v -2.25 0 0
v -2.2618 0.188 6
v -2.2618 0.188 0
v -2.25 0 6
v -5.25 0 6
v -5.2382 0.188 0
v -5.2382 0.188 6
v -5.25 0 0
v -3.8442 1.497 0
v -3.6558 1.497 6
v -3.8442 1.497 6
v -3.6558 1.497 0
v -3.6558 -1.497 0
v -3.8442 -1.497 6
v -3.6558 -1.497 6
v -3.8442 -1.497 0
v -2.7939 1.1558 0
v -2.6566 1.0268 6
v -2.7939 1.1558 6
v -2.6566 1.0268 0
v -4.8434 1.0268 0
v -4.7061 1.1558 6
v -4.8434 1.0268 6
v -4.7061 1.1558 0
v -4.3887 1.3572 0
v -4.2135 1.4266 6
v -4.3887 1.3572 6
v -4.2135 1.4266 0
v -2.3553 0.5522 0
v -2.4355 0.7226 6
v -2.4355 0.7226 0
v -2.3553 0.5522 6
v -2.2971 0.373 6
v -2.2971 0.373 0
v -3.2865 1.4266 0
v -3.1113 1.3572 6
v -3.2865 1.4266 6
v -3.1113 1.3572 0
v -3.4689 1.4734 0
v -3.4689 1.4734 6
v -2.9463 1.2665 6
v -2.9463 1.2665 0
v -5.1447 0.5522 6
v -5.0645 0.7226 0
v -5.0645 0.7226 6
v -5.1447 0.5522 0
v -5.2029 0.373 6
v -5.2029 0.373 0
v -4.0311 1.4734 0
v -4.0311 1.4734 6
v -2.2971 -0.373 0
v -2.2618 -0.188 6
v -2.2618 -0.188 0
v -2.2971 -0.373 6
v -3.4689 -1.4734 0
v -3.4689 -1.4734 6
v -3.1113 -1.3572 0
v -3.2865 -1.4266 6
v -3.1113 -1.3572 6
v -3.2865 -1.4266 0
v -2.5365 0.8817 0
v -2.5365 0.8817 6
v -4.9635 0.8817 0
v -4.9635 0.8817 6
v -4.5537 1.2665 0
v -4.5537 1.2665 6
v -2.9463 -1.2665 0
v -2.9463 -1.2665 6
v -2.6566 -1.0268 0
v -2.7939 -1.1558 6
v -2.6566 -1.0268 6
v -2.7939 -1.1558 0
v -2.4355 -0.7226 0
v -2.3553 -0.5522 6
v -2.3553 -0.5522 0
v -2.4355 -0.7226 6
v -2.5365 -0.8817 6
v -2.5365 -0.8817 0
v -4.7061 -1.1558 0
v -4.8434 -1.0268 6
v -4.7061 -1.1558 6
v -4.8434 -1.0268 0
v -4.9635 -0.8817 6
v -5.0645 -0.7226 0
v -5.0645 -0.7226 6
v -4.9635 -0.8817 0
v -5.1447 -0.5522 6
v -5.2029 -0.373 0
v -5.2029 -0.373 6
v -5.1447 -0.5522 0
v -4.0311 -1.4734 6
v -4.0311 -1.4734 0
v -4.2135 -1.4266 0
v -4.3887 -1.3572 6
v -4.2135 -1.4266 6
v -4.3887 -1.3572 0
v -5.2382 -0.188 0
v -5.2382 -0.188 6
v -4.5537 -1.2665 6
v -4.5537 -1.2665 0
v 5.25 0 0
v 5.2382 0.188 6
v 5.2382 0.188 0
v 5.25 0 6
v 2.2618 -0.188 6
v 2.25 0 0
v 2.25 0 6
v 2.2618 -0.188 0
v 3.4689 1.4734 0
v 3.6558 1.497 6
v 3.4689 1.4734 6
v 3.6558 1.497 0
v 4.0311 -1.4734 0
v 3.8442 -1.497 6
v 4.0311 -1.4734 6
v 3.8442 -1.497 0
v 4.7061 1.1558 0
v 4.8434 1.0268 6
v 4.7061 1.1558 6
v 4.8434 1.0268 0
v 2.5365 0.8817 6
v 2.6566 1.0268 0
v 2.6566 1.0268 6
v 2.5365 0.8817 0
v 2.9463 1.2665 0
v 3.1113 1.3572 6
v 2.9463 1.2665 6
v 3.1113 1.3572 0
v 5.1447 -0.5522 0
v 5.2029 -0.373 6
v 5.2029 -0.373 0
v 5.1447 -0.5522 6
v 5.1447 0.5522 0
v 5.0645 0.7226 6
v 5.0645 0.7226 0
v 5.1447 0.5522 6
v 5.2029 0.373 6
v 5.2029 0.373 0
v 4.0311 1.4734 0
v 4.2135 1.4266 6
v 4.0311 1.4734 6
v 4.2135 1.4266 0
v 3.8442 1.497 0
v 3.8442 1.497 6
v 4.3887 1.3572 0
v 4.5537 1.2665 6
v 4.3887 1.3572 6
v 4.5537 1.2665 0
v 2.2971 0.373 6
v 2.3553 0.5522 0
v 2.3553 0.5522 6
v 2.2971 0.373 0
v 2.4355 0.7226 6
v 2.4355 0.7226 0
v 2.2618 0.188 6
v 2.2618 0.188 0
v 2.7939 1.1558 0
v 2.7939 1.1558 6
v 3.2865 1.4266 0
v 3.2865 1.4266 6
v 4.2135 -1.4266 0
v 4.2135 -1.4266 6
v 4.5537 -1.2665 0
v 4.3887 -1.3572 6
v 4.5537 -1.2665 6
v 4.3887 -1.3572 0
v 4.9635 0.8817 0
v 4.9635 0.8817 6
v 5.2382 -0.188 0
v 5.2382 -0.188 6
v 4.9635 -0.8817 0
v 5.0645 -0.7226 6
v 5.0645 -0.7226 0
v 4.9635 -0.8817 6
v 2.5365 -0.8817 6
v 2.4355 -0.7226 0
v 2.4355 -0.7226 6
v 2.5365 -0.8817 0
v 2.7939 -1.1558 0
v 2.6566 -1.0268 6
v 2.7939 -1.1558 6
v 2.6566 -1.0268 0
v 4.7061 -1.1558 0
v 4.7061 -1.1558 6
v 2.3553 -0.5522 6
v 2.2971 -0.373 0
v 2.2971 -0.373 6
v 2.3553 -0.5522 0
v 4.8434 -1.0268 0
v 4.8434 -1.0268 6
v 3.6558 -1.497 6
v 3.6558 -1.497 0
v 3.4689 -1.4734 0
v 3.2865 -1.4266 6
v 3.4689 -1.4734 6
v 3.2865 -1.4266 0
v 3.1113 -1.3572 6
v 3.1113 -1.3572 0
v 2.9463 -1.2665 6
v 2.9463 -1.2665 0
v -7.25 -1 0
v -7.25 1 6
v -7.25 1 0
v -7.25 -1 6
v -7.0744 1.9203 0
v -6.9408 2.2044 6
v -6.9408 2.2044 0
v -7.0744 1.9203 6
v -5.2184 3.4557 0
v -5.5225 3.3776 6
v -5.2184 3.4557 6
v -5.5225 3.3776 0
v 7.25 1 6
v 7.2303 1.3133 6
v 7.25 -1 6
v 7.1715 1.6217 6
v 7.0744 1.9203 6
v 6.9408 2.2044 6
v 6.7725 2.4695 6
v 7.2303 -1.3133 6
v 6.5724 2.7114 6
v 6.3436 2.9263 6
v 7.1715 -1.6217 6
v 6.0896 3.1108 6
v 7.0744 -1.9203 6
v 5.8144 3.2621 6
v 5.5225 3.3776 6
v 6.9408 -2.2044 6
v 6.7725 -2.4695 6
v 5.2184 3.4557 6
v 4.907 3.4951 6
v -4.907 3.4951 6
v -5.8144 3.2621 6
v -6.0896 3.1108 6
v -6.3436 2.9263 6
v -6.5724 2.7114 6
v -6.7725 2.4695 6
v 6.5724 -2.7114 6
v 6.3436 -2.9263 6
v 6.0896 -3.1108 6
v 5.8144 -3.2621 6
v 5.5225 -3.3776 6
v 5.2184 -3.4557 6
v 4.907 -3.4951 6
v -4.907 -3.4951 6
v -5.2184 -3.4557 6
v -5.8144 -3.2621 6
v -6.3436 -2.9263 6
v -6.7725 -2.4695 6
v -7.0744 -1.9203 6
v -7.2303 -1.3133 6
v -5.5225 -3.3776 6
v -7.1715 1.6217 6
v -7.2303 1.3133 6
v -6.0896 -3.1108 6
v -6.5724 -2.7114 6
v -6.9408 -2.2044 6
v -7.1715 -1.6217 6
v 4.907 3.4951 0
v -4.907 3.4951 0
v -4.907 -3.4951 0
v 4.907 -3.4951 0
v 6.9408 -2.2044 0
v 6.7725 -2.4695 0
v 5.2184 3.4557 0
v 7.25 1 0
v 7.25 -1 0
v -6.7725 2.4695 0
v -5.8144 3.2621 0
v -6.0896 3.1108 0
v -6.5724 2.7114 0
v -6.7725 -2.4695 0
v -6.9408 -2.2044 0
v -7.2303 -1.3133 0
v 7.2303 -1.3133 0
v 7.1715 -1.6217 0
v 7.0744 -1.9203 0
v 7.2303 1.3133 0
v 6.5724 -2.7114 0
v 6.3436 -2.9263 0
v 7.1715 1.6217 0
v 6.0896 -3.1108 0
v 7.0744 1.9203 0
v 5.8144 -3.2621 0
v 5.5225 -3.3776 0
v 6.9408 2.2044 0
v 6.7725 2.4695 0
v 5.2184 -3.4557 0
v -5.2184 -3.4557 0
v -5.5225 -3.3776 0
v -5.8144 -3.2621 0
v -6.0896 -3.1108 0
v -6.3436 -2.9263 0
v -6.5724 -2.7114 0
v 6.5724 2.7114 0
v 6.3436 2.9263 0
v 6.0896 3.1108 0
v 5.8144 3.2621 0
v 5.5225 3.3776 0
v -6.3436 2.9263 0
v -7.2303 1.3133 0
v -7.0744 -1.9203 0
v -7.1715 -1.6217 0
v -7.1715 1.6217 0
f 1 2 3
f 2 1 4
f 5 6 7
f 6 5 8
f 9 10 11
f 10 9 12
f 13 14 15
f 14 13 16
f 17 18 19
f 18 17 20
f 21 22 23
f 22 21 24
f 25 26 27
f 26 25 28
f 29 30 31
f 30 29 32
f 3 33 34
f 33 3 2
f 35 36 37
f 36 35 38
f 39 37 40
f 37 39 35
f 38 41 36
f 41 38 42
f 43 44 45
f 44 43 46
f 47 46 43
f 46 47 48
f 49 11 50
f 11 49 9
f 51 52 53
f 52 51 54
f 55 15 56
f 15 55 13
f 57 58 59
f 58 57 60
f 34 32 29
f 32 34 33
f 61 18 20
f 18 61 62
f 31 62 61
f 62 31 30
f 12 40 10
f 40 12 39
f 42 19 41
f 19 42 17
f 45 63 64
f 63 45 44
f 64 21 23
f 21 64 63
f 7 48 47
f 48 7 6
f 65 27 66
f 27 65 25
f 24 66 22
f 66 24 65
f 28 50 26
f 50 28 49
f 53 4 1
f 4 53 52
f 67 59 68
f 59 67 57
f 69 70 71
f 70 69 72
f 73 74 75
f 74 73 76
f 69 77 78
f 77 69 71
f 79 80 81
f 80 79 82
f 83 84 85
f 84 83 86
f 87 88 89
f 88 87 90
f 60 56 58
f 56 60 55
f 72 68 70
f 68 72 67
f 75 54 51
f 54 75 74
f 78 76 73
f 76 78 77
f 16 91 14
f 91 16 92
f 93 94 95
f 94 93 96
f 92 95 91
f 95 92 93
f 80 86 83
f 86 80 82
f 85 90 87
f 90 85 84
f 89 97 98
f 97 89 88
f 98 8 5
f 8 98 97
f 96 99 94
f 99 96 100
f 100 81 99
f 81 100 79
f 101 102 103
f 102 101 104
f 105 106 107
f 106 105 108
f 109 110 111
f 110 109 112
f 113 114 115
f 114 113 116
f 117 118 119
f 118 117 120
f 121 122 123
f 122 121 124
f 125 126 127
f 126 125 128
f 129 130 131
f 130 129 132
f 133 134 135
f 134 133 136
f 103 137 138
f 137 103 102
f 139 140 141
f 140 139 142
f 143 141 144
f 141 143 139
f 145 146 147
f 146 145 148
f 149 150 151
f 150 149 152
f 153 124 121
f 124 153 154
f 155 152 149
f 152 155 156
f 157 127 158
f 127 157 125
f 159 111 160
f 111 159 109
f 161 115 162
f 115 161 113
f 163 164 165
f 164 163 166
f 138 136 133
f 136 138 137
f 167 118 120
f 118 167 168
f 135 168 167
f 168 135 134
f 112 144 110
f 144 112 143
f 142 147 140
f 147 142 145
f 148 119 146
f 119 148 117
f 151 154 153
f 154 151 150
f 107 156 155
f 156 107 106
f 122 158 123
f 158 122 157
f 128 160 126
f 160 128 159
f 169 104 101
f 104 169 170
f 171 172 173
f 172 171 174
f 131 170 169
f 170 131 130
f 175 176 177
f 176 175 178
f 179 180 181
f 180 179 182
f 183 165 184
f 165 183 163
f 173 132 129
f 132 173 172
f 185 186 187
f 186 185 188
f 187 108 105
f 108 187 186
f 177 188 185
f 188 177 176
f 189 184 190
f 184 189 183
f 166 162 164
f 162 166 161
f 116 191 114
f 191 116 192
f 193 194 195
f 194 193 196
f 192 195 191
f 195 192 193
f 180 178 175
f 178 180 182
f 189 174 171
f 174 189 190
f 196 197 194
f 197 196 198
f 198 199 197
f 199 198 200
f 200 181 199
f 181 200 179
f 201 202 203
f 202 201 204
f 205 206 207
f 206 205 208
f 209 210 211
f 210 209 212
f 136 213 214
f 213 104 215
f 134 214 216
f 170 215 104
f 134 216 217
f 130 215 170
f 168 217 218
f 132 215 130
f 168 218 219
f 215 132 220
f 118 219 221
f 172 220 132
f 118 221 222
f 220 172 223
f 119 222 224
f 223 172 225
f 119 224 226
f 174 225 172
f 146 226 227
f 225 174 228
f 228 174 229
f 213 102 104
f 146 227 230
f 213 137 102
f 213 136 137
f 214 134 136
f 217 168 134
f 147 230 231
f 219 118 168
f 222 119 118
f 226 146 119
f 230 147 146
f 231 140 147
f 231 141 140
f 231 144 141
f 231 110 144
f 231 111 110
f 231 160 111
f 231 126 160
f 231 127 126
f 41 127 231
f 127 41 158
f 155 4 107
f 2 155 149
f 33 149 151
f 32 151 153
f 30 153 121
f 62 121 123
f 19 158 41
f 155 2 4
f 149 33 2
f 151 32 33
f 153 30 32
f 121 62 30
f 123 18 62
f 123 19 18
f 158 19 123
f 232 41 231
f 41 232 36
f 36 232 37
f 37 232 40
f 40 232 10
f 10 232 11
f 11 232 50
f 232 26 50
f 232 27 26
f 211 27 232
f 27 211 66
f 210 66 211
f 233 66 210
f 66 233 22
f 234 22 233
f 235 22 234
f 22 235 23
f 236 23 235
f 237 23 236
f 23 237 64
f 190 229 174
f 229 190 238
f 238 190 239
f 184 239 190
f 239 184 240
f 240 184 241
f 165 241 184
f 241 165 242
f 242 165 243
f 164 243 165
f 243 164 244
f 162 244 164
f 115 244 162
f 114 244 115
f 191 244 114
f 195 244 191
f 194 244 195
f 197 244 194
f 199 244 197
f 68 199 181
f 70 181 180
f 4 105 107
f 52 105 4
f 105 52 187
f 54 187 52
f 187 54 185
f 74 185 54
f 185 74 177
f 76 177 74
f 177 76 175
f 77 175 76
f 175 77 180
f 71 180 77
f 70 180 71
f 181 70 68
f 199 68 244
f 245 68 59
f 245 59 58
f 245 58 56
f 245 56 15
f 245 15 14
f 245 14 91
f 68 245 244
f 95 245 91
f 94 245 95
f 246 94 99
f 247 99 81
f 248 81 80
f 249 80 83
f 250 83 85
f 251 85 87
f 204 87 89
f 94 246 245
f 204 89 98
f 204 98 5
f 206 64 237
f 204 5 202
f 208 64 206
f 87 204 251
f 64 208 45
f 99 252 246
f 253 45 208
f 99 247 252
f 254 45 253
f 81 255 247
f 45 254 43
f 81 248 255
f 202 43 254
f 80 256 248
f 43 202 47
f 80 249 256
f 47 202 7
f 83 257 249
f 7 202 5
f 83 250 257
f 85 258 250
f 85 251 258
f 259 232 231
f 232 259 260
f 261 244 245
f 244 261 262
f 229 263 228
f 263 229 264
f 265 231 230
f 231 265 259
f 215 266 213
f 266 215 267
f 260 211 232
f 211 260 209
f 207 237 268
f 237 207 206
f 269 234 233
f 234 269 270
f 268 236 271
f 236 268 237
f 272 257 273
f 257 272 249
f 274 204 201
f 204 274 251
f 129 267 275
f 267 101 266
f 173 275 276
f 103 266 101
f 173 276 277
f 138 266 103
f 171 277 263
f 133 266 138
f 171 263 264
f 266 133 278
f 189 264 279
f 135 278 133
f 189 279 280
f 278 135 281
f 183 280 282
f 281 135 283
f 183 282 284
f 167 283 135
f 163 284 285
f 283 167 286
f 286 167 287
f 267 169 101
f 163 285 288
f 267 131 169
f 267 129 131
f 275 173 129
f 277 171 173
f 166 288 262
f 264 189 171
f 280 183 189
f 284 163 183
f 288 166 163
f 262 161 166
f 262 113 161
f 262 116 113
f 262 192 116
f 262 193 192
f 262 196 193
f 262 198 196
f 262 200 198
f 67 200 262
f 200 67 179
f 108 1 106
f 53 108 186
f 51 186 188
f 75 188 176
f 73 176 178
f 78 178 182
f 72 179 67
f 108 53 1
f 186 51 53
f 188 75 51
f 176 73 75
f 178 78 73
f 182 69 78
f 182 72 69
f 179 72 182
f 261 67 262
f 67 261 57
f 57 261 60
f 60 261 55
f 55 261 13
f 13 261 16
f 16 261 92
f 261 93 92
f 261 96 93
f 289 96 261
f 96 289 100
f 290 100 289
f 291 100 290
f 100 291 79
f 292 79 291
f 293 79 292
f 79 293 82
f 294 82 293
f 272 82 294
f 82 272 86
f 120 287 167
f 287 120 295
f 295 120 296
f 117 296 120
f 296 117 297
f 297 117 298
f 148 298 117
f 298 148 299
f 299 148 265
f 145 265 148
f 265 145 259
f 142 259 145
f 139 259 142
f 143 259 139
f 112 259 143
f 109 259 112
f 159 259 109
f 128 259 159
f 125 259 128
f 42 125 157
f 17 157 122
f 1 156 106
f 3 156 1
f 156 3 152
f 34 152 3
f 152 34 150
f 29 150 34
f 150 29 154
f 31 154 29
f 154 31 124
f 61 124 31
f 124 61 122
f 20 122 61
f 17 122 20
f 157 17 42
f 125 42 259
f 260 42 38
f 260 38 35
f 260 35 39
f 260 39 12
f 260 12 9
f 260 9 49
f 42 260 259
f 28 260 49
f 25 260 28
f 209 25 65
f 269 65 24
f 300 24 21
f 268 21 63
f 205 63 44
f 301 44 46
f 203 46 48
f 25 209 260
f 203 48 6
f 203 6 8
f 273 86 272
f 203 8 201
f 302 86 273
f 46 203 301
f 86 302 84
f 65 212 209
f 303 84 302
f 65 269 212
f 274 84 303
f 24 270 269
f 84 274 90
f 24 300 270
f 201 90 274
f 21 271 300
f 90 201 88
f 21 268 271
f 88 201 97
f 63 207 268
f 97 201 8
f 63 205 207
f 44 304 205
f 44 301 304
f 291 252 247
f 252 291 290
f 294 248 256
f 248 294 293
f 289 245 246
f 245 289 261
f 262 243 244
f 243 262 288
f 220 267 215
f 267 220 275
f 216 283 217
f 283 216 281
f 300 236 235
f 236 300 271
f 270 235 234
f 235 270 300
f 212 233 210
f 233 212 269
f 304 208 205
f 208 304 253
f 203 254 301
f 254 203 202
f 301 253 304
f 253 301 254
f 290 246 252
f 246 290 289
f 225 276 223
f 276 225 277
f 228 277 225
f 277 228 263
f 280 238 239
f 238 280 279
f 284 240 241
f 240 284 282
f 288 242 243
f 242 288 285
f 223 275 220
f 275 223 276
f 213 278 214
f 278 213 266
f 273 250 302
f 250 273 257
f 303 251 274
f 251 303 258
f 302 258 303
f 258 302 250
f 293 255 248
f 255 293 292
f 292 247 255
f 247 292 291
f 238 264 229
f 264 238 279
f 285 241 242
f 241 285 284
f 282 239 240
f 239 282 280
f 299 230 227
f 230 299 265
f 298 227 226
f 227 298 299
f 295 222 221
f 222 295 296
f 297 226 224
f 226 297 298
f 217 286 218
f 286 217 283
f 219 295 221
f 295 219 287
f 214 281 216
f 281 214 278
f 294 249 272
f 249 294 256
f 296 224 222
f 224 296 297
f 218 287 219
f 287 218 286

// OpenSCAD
$fn = 50;


difference() {
	union() {
		translate(v = [0, 0, 0]) {
			rotate(a = [0, 0, 0]) {
				hull() {
					translate(v = [-4.7500000000, 1.0000000000, 0]) {
						rotate(a = [0, 0, 0]) {
							translate(v = [0, 0, 0]) {
								rotate(a = [0, 0, 0]) {
									cylinder(h = 6, r = 2.5000000000);
								}
							}
						}
					}
					translate(v = [4.7500000000, 1.0000000000, 0]) {
						rotate(a = [0, 0, 0]) {
							translate(v = [0, 0, 0]) {
								rotate(a = [0, 0, 0]) {
									cylinder(h = 6, r = 2.5000000000);
								}
							}
						}
					}
					translate(v = [-4.7500000000, -1.0000000000, 0]) {
						rotate(a = [0, 0, 0]) {
							translate(v = [0, 0, 0]) {
								rotate(a = [0, 0, 0]) {
									cylinder(h = 6, r = 2.5000000000);
								}
							}
						}
					}
					translate(v = [4.7500000000, -1.0000000000, 0]) {
						rotate(a = [0, 0, 0]) {
							translate(v = [0, 0, 0]) {
								rotate(a = [0, 0, 0]) {
									cylinder(h = 6, r = 2.5000000000);
								}
							}
						}
					}
				}
			}
		}
	}
	union() {
		translate(v = [-3.7500000000, 0.0000000000, 0]) {
			rotate(a = [0, 0, 0]) {
				translate(v = [0, 0, -50]) {
					rotate(a = [0, 0, 0]) {
						cylinder(h = 100, r = 1.5000000000);
					}
				}
			}
		}
		translate(v = [3.7500000000, 0.0000000000, 0]) {
			rotate(a = [0, 0, 0]) {
				translate(v = [0, 0, -50]) {
					rotate(a = [0, 0, 0]) {
						cylinder(h = 100, r = 1.5000000000);
					}
				}
			}
		}
	}
}
